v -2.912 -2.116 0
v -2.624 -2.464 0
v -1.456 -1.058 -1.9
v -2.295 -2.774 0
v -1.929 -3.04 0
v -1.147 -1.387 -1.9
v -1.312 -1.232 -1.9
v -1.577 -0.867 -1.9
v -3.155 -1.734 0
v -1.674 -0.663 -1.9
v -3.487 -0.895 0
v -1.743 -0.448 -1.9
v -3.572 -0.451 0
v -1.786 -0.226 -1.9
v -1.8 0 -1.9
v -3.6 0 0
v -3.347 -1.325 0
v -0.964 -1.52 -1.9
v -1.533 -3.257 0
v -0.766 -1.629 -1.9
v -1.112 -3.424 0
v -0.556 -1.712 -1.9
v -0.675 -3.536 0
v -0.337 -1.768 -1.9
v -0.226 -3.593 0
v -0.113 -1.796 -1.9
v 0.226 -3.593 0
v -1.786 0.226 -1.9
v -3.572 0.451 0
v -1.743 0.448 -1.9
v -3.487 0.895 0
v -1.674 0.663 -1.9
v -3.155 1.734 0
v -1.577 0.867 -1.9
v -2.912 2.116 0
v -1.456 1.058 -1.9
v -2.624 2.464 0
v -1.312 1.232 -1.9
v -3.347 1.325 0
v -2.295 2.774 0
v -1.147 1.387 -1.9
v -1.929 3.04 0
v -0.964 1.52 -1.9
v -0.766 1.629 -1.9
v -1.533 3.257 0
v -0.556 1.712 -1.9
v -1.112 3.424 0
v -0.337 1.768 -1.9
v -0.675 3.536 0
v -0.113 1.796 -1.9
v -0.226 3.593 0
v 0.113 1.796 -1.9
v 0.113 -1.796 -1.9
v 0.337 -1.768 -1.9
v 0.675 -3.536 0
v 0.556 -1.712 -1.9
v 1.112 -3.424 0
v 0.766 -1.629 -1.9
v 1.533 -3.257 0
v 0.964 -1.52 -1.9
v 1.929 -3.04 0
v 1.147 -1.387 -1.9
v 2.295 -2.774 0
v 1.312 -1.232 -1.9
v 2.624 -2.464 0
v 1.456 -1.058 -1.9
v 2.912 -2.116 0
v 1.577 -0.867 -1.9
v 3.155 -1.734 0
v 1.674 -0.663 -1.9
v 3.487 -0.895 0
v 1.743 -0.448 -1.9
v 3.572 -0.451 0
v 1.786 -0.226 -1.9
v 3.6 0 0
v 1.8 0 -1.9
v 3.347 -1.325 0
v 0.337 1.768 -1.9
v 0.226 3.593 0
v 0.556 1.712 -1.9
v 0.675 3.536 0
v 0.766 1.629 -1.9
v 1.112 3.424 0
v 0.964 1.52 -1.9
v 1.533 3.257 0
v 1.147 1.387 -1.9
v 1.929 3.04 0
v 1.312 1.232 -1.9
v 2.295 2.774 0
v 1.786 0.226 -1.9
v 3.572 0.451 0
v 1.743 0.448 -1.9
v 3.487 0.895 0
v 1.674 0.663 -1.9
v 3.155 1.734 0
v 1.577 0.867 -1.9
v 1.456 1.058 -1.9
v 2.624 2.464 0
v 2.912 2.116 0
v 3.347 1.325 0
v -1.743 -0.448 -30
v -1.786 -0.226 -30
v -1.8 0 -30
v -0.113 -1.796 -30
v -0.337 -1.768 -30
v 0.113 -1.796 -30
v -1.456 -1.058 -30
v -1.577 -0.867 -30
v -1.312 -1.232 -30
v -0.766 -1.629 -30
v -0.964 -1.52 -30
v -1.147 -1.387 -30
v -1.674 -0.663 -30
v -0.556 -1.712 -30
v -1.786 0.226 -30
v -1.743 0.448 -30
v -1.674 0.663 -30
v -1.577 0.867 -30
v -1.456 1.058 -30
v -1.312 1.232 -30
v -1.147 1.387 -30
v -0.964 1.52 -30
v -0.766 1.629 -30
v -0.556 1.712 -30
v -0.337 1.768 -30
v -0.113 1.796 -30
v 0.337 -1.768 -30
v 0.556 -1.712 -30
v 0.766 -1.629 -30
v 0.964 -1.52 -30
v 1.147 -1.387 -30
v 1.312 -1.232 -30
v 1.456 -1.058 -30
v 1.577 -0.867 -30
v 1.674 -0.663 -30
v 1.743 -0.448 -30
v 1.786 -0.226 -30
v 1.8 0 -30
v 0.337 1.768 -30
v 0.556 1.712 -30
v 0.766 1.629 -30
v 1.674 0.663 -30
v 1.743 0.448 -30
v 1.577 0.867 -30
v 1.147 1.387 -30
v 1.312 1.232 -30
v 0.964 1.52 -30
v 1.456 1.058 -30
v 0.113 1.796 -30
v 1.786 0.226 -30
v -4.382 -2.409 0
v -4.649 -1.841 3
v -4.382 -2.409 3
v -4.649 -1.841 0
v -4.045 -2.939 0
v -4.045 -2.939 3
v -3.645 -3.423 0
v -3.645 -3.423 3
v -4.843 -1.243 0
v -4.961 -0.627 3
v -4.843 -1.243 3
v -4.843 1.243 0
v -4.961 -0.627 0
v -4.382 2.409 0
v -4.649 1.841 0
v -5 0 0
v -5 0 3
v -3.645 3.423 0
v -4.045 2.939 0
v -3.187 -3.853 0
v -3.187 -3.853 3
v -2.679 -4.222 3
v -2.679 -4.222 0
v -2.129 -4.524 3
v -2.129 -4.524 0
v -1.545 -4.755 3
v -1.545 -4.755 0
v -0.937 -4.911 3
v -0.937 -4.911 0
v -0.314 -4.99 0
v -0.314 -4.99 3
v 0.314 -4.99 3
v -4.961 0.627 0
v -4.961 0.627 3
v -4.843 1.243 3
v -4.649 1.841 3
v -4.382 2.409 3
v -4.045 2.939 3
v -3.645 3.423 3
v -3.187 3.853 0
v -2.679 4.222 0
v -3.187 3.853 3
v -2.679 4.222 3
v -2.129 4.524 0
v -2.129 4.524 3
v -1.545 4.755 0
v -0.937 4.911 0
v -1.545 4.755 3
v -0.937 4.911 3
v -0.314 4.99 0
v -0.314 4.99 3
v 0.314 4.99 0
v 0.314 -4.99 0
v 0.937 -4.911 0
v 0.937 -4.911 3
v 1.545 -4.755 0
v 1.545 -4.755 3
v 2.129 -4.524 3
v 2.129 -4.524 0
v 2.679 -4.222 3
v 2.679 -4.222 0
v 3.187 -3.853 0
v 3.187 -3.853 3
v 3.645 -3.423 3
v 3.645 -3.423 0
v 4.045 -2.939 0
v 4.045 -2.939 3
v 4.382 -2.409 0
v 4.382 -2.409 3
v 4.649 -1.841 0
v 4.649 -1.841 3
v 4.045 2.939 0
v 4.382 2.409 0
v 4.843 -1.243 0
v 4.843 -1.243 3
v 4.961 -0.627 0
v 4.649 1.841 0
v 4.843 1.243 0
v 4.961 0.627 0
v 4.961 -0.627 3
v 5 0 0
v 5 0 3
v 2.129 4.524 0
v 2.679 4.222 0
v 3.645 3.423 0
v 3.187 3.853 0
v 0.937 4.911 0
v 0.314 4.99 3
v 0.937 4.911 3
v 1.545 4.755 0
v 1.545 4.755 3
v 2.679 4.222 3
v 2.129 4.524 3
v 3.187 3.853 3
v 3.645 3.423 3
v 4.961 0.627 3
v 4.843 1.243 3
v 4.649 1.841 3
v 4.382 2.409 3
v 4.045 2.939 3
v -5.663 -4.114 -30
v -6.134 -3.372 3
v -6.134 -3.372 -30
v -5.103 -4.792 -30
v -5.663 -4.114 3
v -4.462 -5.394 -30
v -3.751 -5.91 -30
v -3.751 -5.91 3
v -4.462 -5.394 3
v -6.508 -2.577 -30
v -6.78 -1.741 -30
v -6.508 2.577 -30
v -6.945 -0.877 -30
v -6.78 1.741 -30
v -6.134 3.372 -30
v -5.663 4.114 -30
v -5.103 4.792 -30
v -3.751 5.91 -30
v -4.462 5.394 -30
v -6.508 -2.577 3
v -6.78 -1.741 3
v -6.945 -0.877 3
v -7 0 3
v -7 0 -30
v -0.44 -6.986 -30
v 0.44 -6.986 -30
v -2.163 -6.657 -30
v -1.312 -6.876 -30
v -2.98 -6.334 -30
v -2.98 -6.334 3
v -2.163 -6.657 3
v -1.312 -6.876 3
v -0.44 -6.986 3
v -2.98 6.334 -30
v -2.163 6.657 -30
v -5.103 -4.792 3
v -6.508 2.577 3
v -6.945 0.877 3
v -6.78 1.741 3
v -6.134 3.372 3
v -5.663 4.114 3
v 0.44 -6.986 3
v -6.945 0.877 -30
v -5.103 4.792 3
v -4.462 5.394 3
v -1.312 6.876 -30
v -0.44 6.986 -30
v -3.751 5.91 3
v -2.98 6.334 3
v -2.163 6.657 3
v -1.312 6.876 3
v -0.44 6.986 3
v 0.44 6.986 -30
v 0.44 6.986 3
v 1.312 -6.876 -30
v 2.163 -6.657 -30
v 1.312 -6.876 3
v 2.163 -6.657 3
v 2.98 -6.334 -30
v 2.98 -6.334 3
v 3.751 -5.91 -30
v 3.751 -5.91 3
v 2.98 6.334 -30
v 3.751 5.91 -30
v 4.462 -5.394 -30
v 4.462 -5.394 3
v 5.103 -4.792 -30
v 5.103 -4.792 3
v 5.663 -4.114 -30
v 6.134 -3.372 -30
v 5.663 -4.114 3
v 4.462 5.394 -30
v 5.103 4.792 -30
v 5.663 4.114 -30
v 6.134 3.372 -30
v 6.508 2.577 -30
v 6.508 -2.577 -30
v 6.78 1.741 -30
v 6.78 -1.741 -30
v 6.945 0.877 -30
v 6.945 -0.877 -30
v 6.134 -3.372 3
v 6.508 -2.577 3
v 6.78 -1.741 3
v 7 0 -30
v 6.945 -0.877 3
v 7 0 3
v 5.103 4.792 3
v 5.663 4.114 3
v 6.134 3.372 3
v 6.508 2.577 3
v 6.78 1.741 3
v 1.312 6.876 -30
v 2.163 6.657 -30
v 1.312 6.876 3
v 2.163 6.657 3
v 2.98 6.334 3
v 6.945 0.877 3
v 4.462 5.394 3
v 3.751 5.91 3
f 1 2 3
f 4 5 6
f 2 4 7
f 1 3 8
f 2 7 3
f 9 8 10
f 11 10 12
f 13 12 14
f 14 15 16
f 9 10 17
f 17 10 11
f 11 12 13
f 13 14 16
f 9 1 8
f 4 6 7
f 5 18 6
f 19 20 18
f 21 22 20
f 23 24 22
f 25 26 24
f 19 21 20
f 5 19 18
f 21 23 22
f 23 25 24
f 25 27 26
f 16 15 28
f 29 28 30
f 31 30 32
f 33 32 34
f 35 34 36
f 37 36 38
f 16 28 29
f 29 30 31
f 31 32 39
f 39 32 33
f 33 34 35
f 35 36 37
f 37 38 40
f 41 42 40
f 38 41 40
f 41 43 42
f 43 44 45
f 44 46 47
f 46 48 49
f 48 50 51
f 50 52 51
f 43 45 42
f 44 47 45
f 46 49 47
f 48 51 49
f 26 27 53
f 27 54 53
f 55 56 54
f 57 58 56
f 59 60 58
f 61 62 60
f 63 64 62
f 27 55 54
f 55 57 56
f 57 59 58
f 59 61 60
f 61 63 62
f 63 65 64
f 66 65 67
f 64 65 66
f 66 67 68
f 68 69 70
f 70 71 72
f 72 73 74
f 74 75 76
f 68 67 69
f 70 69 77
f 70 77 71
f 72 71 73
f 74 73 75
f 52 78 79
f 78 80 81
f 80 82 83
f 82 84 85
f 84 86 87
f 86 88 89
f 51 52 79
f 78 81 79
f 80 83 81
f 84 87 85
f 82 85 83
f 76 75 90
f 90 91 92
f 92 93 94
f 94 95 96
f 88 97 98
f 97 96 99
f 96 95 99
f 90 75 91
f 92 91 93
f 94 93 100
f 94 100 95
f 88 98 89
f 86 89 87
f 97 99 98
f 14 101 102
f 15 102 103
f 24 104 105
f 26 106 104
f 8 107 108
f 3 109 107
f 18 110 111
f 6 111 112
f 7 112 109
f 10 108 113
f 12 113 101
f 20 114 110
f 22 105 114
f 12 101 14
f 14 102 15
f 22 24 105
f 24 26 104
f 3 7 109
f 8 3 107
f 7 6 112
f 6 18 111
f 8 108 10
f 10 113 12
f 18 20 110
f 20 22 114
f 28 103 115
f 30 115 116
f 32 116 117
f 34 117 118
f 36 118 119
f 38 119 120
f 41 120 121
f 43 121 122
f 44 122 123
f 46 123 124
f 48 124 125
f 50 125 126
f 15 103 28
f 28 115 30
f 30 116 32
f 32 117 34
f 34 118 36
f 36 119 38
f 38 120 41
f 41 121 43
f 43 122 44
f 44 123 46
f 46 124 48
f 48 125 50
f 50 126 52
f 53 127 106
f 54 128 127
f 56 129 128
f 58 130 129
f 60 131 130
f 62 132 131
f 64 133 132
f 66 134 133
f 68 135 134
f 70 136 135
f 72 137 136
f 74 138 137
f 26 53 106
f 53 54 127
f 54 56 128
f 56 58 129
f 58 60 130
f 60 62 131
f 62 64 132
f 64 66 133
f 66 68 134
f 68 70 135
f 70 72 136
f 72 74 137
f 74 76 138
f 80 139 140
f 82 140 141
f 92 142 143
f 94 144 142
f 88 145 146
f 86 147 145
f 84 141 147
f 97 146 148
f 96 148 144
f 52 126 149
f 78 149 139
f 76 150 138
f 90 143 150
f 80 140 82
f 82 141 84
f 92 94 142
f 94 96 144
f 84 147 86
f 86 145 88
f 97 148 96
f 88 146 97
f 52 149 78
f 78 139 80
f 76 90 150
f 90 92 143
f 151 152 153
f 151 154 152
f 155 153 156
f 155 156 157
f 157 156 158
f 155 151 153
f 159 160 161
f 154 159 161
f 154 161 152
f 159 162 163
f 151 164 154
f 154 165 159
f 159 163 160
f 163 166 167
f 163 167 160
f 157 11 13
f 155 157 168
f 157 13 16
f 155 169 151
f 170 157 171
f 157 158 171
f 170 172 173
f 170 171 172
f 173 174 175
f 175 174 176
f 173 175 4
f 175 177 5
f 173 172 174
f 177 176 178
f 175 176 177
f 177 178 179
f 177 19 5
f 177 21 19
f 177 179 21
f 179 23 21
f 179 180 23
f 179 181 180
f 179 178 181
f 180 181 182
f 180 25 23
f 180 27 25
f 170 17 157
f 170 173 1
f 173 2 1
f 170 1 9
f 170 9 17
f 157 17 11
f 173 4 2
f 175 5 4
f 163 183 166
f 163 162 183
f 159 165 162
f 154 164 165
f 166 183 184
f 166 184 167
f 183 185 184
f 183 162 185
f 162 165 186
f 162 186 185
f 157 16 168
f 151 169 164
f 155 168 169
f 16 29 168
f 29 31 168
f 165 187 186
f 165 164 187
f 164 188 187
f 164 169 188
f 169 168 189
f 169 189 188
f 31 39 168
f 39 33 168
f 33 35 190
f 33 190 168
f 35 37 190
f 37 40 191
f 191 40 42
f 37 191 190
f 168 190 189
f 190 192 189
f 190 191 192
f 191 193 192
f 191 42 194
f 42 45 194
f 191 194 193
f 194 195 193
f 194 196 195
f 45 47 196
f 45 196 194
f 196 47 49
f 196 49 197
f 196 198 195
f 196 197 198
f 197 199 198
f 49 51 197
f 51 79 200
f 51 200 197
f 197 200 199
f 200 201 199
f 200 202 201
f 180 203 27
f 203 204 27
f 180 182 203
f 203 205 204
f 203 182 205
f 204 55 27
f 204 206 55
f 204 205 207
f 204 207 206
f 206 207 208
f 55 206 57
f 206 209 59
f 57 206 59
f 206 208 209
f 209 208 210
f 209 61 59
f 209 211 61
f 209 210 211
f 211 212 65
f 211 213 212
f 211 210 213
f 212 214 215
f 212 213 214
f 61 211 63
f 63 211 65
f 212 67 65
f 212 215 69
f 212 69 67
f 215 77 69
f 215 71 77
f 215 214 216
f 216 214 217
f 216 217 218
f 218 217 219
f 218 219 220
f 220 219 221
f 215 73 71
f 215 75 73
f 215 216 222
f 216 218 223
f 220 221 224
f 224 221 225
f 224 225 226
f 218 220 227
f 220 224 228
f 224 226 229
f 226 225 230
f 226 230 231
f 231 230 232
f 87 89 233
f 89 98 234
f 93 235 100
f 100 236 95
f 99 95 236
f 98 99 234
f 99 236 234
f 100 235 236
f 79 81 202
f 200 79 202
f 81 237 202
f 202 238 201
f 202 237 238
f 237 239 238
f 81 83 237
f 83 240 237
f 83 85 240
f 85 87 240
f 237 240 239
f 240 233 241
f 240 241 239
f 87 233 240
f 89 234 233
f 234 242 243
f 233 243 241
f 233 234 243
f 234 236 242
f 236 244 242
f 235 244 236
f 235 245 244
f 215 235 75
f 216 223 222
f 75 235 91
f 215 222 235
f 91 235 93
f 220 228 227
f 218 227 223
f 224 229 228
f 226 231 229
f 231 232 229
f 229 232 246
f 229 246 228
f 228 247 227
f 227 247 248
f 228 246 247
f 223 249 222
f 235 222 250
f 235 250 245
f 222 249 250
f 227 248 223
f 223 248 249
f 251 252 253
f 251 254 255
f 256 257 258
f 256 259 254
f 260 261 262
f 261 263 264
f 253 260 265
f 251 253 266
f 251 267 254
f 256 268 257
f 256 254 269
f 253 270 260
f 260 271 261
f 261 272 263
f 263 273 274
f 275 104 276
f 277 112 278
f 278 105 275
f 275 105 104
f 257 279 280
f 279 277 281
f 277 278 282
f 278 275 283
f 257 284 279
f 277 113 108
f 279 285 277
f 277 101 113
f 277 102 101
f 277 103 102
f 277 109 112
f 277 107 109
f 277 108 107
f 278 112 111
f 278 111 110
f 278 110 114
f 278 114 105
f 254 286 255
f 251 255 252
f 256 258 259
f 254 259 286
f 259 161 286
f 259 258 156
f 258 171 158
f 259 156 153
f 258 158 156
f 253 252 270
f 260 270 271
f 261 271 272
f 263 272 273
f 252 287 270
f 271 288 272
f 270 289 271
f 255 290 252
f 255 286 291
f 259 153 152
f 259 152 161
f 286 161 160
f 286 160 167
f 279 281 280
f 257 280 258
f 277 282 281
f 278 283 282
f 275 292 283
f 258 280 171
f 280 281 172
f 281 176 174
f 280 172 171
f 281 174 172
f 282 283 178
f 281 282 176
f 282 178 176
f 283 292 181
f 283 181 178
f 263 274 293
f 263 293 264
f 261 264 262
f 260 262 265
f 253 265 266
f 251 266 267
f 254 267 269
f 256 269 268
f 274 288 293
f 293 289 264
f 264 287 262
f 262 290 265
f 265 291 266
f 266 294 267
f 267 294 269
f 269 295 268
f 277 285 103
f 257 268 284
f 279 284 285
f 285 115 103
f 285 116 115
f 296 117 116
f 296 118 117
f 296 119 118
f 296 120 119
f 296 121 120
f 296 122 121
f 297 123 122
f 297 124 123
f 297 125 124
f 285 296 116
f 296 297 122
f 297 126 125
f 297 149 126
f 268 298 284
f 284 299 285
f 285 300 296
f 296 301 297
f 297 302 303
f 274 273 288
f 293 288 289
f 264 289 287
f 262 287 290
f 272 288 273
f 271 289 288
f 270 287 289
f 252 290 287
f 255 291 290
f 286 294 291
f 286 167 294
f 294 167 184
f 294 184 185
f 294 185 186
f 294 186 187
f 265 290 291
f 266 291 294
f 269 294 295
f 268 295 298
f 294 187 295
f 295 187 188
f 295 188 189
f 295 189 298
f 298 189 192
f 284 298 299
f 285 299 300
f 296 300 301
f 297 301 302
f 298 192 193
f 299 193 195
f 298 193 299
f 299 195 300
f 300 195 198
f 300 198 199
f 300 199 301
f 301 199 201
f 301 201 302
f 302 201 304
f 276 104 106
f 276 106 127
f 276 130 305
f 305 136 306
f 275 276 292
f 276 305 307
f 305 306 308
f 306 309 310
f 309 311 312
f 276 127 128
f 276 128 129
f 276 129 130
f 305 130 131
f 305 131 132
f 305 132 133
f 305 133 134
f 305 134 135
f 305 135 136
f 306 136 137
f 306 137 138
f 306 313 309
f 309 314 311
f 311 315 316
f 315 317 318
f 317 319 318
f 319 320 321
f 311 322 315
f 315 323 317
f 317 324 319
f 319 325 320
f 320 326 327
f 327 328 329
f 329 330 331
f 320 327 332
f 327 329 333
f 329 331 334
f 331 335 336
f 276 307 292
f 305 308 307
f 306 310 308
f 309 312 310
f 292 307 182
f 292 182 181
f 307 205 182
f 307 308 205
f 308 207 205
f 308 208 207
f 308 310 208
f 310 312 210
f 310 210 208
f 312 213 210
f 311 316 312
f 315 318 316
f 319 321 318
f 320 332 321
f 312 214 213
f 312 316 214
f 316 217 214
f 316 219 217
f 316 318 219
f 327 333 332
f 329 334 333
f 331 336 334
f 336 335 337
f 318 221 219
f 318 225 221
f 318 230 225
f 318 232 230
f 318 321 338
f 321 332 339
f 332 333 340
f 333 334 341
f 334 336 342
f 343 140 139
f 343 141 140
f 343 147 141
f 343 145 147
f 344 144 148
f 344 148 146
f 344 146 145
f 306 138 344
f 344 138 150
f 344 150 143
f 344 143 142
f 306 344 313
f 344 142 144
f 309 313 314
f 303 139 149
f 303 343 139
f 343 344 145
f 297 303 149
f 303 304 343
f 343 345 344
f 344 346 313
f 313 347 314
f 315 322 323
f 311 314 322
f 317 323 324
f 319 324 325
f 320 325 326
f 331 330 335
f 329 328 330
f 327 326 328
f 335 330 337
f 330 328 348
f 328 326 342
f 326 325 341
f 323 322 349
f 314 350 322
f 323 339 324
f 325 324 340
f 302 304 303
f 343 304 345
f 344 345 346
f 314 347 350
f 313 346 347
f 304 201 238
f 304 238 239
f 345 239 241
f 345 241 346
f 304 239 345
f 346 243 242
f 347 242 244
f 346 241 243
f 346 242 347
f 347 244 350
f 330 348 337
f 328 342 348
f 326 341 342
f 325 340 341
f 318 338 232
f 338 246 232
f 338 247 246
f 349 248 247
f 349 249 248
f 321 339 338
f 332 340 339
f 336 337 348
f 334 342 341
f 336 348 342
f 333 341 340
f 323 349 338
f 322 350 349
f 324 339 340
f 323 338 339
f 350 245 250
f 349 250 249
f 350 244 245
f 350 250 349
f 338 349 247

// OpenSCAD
$fn = 50;

difference() {
	union() {
		translate(v = [0, 0, -30.0]) {
			cylinder(h = 33, r = 7.0);
		}
	}
	union() {
		translate(v = [0, 0, 0]) {
			rotate(a = [0, 0, 0]) {
				difference() {
					union() {
						translate(v = [0, 0, -33.0]) {
							cylinder(h = 33, r = 1.5);
						}
						translate(v = [0, 0, -1.9]) {
							cylinder(h = 1.9, r1 = 1.8, r2 = 3.6);
						}
						translate(v = [0, 0, -33.0]) {
							cylinder(h = 33, r = 1.8);
						}
						translate(v = [0, 0, -33.0]) {
							cylinder(h = 33, r = 1.5);
						}
					}
					union();
				}
			}
		}
		#cylinder(h = 3, r = 5.0);
	}
}
